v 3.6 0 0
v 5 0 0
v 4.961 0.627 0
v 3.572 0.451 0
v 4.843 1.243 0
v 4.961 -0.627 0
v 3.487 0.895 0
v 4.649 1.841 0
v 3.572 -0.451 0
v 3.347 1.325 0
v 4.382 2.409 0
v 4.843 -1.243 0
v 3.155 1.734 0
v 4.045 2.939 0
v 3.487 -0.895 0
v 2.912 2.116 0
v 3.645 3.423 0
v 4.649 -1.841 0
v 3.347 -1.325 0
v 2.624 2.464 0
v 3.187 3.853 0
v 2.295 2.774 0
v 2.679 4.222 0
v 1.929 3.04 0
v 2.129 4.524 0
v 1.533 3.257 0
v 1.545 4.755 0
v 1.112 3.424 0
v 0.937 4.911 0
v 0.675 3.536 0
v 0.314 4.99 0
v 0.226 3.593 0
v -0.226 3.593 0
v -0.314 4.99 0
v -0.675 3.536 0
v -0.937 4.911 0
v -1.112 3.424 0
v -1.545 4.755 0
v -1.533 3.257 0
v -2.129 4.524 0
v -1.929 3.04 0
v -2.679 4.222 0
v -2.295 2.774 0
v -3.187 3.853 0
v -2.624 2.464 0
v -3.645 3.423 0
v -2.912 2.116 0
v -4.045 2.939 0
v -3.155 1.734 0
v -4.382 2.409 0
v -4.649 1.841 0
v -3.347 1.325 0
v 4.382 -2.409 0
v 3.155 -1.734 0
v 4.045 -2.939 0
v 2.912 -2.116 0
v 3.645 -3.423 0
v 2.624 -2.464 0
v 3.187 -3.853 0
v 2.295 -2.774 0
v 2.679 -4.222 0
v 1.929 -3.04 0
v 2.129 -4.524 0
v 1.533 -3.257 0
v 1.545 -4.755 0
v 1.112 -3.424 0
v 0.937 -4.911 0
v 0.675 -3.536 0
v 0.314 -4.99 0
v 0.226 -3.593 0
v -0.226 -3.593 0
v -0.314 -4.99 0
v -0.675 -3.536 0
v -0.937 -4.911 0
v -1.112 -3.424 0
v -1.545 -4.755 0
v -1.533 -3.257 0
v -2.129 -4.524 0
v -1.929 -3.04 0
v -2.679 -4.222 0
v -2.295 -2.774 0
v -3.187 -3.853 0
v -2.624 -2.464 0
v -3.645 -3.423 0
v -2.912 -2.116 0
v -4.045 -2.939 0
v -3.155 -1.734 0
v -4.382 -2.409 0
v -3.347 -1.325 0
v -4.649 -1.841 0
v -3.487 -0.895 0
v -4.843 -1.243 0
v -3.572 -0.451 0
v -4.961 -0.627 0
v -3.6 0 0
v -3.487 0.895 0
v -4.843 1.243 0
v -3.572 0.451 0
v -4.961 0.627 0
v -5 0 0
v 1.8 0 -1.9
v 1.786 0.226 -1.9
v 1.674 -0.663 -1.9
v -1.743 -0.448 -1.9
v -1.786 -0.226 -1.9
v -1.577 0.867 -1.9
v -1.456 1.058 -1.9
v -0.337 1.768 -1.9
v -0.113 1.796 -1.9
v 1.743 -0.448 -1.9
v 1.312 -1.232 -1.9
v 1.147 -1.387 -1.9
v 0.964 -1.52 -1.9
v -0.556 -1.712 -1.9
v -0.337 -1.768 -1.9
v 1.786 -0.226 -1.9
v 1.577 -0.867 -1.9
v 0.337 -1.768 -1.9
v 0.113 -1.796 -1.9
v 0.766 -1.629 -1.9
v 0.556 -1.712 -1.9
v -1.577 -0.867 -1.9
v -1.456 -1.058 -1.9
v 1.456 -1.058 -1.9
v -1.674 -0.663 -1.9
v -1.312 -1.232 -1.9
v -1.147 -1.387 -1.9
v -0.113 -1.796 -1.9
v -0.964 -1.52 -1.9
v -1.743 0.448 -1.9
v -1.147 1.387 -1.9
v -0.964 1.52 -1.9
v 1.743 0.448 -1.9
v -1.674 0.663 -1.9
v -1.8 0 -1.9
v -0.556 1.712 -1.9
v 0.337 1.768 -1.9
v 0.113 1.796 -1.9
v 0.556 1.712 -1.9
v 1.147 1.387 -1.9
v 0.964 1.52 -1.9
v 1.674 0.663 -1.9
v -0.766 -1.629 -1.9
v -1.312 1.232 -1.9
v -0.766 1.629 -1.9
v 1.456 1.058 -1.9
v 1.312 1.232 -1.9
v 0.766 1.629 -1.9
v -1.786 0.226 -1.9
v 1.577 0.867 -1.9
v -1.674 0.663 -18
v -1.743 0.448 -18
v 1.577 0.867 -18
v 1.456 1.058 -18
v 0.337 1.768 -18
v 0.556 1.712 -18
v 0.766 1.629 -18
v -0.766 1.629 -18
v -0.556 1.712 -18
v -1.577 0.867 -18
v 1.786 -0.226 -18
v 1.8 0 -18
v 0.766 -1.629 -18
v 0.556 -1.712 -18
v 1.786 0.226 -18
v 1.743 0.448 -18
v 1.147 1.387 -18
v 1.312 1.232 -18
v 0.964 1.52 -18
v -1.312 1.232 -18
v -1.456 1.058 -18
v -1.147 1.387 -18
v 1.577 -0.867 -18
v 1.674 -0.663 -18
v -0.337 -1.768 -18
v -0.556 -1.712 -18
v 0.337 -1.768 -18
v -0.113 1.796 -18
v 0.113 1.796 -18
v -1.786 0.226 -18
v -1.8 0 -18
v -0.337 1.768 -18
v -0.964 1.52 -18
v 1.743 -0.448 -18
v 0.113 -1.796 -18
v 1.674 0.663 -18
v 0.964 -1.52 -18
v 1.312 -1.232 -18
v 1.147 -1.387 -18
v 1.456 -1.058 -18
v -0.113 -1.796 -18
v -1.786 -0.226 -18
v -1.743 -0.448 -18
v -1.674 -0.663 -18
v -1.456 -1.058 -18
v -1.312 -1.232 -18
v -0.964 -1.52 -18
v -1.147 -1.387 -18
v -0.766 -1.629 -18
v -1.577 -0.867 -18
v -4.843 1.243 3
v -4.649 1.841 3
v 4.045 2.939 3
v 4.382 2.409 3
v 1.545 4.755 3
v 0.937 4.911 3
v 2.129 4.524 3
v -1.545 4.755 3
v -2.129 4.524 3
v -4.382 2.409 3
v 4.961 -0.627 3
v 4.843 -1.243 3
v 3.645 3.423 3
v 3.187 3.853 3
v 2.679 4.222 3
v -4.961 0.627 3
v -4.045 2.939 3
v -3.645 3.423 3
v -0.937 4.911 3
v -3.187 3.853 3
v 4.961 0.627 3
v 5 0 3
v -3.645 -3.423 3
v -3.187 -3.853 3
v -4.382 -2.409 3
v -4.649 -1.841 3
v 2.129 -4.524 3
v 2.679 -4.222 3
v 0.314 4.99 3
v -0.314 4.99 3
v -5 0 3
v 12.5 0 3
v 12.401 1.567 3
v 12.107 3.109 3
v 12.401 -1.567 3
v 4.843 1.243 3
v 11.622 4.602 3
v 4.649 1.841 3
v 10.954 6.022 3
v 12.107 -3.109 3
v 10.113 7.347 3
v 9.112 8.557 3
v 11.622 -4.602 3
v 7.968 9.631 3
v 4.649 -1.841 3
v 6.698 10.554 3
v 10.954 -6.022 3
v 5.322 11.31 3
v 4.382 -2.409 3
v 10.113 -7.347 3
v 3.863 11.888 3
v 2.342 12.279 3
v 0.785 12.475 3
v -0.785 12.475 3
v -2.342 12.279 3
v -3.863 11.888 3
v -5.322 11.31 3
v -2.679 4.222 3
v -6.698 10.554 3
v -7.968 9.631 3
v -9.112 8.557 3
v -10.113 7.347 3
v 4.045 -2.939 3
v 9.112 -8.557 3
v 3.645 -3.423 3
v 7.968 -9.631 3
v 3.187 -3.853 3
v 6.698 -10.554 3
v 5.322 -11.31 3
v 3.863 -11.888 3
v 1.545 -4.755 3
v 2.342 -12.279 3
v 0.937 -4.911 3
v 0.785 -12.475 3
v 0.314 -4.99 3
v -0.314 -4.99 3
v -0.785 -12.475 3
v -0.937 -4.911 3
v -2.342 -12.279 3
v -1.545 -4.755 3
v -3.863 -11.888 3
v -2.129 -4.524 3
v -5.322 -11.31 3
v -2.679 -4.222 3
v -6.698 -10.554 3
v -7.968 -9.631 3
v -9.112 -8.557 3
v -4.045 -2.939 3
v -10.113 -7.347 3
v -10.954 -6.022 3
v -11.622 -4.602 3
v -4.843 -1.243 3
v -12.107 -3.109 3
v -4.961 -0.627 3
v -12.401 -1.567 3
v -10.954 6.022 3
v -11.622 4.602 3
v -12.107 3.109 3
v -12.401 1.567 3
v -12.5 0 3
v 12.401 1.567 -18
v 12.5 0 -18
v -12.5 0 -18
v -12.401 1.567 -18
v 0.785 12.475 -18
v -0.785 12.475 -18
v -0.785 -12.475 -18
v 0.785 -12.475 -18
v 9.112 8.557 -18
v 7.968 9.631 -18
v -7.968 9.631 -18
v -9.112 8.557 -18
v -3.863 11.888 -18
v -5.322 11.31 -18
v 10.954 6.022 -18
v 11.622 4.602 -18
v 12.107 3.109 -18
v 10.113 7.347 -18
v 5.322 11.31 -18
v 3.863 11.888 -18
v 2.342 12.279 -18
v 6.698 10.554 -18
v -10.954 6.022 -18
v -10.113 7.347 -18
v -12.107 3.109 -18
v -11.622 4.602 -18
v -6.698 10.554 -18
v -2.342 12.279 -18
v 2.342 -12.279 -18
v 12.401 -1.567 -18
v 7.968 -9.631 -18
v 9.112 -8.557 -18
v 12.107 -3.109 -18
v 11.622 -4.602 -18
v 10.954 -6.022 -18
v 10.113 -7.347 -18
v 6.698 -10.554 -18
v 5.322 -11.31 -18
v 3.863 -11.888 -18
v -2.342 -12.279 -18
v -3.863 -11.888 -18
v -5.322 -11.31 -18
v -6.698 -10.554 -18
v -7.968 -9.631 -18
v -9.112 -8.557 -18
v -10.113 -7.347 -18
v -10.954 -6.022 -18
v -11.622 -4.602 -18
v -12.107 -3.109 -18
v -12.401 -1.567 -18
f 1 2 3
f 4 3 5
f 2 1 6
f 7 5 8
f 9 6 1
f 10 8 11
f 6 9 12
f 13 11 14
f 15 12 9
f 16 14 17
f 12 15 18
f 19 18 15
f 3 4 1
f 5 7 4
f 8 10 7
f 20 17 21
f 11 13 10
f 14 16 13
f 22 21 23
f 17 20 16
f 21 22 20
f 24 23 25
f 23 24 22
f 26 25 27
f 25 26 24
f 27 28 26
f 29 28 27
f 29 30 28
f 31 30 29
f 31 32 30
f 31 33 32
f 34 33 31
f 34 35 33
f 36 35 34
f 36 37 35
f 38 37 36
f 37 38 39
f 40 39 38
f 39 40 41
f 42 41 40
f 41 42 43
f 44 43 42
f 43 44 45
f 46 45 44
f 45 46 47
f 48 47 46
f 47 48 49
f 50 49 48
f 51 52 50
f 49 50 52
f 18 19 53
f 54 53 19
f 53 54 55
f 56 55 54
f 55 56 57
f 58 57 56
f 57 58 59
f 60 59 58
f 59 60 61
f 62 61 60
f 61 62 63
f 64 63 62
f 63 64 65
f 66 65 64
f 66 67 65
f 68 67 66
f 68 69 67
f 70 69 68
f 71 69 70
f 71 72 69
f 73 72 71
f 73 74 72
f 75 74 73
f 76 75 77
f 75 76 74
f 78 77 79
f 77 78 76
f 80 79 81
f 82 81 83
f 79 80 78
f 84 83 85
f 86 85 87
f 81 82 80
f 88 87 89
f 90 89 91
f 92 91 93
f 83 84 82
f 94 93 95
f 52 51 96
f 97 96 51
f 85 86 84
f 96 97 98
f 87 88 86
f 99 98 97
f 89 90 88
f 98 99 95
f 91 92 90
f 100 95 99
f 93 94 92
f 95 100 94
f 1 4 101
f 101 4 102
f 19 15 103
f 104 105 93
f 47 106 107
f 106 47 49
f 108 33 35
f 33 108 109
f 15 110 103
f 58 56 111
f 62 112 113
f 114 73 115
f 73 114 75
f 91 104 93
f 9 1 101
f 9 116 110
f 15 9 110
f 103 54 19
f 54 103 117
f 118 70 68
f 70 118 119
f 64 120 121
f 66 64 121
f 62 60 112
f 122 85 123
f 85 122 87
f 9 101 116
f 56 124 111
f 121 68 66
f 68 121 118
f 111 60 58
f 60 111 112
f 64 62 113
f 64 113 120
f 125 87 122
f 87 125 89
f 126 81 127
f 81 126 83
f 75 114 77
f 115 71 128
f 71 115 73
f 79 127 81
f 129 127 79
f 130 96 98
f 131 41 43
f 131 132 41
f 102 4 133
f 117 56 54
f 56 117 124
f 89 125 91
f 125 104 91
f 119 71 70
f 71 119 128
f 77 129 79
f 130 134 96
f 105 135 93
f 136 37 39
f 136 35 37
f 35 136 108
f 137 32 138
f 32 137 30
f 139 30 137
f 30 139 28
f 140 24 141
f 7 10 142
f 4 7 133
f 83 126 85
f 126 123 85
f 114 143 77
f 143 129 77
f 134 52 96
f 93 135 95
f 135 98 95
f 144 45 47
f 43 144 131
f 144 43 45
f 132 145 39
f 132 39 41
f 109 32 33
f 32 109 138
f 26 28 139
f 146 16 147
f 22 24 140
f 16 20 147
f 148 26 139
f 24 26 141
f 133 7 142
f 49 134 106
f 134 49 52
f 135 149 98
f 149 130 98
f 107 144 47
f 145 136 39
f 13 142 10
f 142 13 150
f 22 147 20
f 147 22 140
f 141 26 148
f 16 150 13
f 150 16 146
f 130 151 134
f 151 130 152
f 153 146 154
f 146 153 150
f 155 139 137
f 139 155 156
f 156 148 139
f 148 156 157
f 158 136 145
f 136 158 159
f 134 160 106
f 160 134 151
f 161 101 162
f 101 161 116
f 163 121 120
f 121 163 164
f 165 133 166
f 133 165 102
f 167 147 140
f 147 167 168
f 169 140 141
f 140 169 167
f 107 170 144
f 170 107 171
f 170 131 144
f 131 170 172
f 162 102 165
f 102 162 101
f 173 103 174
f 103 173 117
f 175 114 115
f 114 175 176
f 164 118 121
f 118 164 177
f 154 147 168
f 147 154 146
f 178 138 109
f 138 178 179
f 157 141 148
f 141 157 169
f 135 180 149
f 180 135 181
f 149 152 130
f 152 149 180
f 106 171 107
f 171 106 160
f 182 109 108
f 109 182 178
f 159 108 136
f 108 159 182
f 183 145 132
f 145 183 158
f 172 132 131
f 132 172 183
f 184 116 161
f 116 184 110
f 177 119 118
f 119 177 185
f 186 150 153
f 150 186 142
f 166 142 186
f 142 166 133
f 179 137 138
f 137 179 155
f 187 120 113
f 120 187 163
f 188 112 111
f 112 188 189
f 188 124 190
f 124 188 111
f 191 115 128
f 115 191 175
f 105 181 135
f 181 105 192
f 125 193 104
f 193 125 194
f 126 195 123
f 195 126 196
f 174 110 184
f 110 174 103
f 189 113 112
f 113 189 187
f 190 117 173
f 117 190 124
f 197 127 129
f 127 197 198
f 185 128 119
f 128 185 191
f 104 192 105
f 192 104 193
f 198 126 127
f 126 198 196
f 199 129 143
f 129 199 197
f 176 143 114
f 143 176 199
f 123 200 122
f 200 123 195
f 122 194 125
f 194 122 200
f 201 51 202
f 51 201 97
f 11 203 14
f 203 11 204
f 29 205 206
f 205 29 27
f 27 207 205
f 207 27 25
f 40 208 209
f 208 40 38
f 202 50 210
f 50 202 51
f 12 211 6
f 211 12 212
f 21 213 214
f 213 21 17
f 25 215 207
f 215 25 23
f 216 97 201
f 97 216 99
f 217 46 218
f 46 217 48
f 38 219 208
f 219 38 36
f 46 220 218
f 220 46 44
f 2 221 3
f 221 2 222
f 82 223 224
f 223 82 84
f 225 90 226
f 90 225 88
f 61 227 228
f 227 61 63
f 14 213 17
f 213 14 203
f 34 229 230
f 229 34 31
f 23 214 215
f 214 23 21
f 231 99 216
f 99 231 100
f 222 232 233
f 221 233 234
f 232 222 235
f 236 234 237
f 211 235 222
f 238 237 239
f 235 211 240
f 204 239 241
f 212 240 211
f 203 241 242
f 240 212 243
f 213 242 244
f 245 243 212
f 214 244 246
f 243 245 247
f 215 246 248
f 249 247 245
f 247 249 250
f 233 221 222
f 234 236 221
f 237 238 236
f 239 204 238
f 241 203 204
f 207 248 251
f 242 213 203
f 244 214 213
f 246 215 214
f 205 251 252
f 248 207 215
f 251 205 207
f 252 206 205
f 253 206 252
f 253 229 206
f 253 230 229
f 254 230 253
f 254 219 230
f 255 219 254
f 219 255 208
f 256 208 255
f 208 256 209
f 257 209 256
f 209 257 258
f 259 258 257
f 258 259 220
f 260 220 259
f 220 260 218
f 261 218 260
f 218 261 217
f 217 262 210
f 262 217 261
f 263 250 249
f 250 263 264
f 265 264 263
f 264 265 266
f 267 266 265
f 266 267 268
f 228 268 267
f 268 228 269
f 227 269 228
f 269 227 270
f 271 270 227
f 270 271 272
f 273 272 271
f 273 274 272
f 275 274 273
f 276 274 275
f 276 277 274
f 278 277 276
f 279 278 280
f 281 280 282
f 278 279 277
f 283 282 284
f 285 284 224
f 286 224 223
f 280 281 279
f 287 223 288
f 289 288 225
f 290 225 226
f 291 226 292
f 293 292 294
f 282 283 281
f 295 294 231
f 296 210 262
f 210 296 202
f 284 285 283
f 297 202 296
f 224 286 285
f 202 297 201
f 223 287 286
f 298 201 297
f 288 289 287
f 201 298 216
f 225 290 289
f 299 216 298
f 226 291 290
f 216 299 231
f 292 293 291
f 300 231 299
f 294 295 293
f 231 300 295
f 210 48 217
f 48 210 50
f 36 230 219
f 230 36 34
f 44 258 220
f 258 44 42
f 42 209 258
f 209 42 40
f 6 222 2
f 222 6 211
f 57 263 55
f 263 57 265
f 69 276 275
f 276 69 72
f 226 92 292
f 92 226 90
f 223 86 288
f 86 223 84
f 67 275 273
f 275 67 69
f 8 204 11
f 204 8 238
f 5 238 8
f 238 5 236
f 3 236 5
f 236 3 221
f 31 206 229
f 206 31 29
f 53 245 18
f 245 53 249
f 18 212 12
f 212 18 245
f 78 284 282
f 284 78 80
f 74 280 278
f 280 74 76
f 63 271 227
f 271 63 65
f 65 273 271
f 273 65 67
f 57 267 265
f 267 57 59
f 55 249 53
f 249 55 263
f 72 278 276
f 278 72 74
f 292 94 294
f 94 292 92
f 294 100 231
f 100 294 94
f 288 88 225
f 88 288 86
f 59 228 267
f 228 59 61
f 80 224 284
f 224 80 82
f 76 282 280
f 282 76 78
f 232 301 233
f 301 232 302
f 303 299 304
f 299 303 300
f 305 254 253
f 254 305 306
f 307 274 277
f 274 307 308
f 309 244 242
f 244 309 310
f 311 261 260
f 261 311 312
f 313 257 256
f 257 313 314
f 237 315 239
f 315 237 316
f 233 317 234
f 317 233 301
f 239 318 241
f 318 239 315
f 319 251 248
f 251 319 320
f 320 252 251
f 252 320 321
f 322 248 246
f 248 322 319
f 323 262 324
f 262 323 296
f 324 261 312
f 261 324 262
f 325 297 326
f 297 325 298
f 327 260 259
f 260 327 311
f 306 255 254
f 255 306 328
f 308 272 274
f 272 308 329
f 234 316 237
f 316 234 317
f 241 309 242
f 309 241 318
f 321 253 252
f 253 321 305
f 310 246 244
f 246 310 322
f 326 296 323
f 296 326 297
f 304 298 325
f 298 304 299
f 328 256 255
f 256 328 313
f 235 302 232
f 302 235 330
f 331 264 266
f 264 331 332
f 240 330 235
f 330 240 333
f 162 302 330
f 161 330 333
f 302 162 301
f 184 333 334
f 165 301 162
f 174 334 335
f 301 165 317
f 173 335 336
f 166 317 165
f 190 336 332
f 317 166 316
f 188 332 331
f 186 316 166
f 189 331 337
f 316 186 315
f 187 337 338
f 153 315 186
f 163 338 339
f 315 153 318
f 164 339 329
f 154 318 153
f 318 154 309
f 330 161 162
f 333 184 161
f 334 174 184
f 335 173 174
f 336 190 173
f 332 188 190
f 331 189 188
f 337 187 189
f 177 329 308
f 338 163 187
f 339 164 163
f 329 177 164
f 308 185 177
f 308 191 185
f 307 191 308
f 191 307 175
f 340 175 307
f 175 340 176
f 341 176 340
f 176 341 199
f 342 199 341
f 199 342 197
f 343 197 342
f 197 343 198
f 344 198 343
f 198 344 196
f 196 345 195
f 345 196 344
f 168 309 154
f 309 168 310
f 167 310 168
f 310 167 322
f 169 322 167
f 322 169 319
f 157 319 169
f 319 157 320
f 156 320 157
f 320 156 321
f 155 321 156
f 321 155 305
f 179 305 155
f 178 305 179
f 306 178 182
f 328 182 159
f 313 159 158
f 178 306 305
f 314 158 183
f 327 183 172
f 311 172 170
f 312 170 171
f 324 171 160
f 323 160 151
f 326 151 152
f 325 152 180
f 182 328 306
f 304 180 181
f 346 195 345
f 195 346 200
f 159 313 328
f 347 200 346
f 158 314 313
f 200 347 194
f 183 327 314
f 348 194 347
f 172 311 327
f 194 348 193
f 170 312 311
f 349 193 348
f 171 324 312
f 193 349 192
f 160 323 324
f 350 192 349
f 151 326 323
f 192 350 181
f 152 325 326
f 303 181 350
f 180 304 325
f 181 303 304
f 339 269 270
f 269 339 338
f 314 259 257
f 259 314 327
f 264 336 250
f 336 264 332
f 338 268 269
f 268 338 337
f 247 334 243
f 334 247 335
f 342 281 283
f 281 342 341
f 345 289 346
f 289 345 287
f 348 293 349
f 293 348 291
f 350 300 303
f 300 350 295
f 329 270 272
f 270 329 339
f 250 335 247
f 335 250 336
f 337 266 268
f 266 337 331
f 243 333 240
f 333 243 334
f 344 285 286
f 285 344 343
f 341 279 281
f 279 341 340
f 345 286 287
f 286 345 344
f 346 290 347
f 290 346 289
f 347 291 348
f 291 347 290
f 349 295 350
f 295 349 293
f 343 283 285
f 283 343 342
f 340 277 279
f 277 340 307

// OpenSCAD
$fn = 50;


difference() {
	union() {
		translate(v = [0, 0, -18.0000000000]) {
			cylinder(h = 21, r = 12.5000000000);
		}
	}
	union() {
		translate(v = [0, 0, 0]) {
			rotate(a = [0, 0, 0]) {
				difference() {
					union() {
						translate(v = [0, 0, -21.0000000000]) {
							cylinder(h = 21, r = 1.5000000000);
						}
						translate(v = [0, 0, -1.9000000000]) {
							cylinder(h = 1.9000000000, r1 = 1.8000000000, r2 = 3.6000000000);
						}
						translate(v = [0, 0, -21.0000000000]) {
							cylinder(h = 21, r = 1.8000000000);
						}
						translate(v = [0, 0, -21.0000000000]) {
							cylinder(h = 21, r = 1.5000000000);
						}
					}
					union();
				}
			}
		}
		#cylinder(h = 3, r = 5.0000000000);
	}
}
